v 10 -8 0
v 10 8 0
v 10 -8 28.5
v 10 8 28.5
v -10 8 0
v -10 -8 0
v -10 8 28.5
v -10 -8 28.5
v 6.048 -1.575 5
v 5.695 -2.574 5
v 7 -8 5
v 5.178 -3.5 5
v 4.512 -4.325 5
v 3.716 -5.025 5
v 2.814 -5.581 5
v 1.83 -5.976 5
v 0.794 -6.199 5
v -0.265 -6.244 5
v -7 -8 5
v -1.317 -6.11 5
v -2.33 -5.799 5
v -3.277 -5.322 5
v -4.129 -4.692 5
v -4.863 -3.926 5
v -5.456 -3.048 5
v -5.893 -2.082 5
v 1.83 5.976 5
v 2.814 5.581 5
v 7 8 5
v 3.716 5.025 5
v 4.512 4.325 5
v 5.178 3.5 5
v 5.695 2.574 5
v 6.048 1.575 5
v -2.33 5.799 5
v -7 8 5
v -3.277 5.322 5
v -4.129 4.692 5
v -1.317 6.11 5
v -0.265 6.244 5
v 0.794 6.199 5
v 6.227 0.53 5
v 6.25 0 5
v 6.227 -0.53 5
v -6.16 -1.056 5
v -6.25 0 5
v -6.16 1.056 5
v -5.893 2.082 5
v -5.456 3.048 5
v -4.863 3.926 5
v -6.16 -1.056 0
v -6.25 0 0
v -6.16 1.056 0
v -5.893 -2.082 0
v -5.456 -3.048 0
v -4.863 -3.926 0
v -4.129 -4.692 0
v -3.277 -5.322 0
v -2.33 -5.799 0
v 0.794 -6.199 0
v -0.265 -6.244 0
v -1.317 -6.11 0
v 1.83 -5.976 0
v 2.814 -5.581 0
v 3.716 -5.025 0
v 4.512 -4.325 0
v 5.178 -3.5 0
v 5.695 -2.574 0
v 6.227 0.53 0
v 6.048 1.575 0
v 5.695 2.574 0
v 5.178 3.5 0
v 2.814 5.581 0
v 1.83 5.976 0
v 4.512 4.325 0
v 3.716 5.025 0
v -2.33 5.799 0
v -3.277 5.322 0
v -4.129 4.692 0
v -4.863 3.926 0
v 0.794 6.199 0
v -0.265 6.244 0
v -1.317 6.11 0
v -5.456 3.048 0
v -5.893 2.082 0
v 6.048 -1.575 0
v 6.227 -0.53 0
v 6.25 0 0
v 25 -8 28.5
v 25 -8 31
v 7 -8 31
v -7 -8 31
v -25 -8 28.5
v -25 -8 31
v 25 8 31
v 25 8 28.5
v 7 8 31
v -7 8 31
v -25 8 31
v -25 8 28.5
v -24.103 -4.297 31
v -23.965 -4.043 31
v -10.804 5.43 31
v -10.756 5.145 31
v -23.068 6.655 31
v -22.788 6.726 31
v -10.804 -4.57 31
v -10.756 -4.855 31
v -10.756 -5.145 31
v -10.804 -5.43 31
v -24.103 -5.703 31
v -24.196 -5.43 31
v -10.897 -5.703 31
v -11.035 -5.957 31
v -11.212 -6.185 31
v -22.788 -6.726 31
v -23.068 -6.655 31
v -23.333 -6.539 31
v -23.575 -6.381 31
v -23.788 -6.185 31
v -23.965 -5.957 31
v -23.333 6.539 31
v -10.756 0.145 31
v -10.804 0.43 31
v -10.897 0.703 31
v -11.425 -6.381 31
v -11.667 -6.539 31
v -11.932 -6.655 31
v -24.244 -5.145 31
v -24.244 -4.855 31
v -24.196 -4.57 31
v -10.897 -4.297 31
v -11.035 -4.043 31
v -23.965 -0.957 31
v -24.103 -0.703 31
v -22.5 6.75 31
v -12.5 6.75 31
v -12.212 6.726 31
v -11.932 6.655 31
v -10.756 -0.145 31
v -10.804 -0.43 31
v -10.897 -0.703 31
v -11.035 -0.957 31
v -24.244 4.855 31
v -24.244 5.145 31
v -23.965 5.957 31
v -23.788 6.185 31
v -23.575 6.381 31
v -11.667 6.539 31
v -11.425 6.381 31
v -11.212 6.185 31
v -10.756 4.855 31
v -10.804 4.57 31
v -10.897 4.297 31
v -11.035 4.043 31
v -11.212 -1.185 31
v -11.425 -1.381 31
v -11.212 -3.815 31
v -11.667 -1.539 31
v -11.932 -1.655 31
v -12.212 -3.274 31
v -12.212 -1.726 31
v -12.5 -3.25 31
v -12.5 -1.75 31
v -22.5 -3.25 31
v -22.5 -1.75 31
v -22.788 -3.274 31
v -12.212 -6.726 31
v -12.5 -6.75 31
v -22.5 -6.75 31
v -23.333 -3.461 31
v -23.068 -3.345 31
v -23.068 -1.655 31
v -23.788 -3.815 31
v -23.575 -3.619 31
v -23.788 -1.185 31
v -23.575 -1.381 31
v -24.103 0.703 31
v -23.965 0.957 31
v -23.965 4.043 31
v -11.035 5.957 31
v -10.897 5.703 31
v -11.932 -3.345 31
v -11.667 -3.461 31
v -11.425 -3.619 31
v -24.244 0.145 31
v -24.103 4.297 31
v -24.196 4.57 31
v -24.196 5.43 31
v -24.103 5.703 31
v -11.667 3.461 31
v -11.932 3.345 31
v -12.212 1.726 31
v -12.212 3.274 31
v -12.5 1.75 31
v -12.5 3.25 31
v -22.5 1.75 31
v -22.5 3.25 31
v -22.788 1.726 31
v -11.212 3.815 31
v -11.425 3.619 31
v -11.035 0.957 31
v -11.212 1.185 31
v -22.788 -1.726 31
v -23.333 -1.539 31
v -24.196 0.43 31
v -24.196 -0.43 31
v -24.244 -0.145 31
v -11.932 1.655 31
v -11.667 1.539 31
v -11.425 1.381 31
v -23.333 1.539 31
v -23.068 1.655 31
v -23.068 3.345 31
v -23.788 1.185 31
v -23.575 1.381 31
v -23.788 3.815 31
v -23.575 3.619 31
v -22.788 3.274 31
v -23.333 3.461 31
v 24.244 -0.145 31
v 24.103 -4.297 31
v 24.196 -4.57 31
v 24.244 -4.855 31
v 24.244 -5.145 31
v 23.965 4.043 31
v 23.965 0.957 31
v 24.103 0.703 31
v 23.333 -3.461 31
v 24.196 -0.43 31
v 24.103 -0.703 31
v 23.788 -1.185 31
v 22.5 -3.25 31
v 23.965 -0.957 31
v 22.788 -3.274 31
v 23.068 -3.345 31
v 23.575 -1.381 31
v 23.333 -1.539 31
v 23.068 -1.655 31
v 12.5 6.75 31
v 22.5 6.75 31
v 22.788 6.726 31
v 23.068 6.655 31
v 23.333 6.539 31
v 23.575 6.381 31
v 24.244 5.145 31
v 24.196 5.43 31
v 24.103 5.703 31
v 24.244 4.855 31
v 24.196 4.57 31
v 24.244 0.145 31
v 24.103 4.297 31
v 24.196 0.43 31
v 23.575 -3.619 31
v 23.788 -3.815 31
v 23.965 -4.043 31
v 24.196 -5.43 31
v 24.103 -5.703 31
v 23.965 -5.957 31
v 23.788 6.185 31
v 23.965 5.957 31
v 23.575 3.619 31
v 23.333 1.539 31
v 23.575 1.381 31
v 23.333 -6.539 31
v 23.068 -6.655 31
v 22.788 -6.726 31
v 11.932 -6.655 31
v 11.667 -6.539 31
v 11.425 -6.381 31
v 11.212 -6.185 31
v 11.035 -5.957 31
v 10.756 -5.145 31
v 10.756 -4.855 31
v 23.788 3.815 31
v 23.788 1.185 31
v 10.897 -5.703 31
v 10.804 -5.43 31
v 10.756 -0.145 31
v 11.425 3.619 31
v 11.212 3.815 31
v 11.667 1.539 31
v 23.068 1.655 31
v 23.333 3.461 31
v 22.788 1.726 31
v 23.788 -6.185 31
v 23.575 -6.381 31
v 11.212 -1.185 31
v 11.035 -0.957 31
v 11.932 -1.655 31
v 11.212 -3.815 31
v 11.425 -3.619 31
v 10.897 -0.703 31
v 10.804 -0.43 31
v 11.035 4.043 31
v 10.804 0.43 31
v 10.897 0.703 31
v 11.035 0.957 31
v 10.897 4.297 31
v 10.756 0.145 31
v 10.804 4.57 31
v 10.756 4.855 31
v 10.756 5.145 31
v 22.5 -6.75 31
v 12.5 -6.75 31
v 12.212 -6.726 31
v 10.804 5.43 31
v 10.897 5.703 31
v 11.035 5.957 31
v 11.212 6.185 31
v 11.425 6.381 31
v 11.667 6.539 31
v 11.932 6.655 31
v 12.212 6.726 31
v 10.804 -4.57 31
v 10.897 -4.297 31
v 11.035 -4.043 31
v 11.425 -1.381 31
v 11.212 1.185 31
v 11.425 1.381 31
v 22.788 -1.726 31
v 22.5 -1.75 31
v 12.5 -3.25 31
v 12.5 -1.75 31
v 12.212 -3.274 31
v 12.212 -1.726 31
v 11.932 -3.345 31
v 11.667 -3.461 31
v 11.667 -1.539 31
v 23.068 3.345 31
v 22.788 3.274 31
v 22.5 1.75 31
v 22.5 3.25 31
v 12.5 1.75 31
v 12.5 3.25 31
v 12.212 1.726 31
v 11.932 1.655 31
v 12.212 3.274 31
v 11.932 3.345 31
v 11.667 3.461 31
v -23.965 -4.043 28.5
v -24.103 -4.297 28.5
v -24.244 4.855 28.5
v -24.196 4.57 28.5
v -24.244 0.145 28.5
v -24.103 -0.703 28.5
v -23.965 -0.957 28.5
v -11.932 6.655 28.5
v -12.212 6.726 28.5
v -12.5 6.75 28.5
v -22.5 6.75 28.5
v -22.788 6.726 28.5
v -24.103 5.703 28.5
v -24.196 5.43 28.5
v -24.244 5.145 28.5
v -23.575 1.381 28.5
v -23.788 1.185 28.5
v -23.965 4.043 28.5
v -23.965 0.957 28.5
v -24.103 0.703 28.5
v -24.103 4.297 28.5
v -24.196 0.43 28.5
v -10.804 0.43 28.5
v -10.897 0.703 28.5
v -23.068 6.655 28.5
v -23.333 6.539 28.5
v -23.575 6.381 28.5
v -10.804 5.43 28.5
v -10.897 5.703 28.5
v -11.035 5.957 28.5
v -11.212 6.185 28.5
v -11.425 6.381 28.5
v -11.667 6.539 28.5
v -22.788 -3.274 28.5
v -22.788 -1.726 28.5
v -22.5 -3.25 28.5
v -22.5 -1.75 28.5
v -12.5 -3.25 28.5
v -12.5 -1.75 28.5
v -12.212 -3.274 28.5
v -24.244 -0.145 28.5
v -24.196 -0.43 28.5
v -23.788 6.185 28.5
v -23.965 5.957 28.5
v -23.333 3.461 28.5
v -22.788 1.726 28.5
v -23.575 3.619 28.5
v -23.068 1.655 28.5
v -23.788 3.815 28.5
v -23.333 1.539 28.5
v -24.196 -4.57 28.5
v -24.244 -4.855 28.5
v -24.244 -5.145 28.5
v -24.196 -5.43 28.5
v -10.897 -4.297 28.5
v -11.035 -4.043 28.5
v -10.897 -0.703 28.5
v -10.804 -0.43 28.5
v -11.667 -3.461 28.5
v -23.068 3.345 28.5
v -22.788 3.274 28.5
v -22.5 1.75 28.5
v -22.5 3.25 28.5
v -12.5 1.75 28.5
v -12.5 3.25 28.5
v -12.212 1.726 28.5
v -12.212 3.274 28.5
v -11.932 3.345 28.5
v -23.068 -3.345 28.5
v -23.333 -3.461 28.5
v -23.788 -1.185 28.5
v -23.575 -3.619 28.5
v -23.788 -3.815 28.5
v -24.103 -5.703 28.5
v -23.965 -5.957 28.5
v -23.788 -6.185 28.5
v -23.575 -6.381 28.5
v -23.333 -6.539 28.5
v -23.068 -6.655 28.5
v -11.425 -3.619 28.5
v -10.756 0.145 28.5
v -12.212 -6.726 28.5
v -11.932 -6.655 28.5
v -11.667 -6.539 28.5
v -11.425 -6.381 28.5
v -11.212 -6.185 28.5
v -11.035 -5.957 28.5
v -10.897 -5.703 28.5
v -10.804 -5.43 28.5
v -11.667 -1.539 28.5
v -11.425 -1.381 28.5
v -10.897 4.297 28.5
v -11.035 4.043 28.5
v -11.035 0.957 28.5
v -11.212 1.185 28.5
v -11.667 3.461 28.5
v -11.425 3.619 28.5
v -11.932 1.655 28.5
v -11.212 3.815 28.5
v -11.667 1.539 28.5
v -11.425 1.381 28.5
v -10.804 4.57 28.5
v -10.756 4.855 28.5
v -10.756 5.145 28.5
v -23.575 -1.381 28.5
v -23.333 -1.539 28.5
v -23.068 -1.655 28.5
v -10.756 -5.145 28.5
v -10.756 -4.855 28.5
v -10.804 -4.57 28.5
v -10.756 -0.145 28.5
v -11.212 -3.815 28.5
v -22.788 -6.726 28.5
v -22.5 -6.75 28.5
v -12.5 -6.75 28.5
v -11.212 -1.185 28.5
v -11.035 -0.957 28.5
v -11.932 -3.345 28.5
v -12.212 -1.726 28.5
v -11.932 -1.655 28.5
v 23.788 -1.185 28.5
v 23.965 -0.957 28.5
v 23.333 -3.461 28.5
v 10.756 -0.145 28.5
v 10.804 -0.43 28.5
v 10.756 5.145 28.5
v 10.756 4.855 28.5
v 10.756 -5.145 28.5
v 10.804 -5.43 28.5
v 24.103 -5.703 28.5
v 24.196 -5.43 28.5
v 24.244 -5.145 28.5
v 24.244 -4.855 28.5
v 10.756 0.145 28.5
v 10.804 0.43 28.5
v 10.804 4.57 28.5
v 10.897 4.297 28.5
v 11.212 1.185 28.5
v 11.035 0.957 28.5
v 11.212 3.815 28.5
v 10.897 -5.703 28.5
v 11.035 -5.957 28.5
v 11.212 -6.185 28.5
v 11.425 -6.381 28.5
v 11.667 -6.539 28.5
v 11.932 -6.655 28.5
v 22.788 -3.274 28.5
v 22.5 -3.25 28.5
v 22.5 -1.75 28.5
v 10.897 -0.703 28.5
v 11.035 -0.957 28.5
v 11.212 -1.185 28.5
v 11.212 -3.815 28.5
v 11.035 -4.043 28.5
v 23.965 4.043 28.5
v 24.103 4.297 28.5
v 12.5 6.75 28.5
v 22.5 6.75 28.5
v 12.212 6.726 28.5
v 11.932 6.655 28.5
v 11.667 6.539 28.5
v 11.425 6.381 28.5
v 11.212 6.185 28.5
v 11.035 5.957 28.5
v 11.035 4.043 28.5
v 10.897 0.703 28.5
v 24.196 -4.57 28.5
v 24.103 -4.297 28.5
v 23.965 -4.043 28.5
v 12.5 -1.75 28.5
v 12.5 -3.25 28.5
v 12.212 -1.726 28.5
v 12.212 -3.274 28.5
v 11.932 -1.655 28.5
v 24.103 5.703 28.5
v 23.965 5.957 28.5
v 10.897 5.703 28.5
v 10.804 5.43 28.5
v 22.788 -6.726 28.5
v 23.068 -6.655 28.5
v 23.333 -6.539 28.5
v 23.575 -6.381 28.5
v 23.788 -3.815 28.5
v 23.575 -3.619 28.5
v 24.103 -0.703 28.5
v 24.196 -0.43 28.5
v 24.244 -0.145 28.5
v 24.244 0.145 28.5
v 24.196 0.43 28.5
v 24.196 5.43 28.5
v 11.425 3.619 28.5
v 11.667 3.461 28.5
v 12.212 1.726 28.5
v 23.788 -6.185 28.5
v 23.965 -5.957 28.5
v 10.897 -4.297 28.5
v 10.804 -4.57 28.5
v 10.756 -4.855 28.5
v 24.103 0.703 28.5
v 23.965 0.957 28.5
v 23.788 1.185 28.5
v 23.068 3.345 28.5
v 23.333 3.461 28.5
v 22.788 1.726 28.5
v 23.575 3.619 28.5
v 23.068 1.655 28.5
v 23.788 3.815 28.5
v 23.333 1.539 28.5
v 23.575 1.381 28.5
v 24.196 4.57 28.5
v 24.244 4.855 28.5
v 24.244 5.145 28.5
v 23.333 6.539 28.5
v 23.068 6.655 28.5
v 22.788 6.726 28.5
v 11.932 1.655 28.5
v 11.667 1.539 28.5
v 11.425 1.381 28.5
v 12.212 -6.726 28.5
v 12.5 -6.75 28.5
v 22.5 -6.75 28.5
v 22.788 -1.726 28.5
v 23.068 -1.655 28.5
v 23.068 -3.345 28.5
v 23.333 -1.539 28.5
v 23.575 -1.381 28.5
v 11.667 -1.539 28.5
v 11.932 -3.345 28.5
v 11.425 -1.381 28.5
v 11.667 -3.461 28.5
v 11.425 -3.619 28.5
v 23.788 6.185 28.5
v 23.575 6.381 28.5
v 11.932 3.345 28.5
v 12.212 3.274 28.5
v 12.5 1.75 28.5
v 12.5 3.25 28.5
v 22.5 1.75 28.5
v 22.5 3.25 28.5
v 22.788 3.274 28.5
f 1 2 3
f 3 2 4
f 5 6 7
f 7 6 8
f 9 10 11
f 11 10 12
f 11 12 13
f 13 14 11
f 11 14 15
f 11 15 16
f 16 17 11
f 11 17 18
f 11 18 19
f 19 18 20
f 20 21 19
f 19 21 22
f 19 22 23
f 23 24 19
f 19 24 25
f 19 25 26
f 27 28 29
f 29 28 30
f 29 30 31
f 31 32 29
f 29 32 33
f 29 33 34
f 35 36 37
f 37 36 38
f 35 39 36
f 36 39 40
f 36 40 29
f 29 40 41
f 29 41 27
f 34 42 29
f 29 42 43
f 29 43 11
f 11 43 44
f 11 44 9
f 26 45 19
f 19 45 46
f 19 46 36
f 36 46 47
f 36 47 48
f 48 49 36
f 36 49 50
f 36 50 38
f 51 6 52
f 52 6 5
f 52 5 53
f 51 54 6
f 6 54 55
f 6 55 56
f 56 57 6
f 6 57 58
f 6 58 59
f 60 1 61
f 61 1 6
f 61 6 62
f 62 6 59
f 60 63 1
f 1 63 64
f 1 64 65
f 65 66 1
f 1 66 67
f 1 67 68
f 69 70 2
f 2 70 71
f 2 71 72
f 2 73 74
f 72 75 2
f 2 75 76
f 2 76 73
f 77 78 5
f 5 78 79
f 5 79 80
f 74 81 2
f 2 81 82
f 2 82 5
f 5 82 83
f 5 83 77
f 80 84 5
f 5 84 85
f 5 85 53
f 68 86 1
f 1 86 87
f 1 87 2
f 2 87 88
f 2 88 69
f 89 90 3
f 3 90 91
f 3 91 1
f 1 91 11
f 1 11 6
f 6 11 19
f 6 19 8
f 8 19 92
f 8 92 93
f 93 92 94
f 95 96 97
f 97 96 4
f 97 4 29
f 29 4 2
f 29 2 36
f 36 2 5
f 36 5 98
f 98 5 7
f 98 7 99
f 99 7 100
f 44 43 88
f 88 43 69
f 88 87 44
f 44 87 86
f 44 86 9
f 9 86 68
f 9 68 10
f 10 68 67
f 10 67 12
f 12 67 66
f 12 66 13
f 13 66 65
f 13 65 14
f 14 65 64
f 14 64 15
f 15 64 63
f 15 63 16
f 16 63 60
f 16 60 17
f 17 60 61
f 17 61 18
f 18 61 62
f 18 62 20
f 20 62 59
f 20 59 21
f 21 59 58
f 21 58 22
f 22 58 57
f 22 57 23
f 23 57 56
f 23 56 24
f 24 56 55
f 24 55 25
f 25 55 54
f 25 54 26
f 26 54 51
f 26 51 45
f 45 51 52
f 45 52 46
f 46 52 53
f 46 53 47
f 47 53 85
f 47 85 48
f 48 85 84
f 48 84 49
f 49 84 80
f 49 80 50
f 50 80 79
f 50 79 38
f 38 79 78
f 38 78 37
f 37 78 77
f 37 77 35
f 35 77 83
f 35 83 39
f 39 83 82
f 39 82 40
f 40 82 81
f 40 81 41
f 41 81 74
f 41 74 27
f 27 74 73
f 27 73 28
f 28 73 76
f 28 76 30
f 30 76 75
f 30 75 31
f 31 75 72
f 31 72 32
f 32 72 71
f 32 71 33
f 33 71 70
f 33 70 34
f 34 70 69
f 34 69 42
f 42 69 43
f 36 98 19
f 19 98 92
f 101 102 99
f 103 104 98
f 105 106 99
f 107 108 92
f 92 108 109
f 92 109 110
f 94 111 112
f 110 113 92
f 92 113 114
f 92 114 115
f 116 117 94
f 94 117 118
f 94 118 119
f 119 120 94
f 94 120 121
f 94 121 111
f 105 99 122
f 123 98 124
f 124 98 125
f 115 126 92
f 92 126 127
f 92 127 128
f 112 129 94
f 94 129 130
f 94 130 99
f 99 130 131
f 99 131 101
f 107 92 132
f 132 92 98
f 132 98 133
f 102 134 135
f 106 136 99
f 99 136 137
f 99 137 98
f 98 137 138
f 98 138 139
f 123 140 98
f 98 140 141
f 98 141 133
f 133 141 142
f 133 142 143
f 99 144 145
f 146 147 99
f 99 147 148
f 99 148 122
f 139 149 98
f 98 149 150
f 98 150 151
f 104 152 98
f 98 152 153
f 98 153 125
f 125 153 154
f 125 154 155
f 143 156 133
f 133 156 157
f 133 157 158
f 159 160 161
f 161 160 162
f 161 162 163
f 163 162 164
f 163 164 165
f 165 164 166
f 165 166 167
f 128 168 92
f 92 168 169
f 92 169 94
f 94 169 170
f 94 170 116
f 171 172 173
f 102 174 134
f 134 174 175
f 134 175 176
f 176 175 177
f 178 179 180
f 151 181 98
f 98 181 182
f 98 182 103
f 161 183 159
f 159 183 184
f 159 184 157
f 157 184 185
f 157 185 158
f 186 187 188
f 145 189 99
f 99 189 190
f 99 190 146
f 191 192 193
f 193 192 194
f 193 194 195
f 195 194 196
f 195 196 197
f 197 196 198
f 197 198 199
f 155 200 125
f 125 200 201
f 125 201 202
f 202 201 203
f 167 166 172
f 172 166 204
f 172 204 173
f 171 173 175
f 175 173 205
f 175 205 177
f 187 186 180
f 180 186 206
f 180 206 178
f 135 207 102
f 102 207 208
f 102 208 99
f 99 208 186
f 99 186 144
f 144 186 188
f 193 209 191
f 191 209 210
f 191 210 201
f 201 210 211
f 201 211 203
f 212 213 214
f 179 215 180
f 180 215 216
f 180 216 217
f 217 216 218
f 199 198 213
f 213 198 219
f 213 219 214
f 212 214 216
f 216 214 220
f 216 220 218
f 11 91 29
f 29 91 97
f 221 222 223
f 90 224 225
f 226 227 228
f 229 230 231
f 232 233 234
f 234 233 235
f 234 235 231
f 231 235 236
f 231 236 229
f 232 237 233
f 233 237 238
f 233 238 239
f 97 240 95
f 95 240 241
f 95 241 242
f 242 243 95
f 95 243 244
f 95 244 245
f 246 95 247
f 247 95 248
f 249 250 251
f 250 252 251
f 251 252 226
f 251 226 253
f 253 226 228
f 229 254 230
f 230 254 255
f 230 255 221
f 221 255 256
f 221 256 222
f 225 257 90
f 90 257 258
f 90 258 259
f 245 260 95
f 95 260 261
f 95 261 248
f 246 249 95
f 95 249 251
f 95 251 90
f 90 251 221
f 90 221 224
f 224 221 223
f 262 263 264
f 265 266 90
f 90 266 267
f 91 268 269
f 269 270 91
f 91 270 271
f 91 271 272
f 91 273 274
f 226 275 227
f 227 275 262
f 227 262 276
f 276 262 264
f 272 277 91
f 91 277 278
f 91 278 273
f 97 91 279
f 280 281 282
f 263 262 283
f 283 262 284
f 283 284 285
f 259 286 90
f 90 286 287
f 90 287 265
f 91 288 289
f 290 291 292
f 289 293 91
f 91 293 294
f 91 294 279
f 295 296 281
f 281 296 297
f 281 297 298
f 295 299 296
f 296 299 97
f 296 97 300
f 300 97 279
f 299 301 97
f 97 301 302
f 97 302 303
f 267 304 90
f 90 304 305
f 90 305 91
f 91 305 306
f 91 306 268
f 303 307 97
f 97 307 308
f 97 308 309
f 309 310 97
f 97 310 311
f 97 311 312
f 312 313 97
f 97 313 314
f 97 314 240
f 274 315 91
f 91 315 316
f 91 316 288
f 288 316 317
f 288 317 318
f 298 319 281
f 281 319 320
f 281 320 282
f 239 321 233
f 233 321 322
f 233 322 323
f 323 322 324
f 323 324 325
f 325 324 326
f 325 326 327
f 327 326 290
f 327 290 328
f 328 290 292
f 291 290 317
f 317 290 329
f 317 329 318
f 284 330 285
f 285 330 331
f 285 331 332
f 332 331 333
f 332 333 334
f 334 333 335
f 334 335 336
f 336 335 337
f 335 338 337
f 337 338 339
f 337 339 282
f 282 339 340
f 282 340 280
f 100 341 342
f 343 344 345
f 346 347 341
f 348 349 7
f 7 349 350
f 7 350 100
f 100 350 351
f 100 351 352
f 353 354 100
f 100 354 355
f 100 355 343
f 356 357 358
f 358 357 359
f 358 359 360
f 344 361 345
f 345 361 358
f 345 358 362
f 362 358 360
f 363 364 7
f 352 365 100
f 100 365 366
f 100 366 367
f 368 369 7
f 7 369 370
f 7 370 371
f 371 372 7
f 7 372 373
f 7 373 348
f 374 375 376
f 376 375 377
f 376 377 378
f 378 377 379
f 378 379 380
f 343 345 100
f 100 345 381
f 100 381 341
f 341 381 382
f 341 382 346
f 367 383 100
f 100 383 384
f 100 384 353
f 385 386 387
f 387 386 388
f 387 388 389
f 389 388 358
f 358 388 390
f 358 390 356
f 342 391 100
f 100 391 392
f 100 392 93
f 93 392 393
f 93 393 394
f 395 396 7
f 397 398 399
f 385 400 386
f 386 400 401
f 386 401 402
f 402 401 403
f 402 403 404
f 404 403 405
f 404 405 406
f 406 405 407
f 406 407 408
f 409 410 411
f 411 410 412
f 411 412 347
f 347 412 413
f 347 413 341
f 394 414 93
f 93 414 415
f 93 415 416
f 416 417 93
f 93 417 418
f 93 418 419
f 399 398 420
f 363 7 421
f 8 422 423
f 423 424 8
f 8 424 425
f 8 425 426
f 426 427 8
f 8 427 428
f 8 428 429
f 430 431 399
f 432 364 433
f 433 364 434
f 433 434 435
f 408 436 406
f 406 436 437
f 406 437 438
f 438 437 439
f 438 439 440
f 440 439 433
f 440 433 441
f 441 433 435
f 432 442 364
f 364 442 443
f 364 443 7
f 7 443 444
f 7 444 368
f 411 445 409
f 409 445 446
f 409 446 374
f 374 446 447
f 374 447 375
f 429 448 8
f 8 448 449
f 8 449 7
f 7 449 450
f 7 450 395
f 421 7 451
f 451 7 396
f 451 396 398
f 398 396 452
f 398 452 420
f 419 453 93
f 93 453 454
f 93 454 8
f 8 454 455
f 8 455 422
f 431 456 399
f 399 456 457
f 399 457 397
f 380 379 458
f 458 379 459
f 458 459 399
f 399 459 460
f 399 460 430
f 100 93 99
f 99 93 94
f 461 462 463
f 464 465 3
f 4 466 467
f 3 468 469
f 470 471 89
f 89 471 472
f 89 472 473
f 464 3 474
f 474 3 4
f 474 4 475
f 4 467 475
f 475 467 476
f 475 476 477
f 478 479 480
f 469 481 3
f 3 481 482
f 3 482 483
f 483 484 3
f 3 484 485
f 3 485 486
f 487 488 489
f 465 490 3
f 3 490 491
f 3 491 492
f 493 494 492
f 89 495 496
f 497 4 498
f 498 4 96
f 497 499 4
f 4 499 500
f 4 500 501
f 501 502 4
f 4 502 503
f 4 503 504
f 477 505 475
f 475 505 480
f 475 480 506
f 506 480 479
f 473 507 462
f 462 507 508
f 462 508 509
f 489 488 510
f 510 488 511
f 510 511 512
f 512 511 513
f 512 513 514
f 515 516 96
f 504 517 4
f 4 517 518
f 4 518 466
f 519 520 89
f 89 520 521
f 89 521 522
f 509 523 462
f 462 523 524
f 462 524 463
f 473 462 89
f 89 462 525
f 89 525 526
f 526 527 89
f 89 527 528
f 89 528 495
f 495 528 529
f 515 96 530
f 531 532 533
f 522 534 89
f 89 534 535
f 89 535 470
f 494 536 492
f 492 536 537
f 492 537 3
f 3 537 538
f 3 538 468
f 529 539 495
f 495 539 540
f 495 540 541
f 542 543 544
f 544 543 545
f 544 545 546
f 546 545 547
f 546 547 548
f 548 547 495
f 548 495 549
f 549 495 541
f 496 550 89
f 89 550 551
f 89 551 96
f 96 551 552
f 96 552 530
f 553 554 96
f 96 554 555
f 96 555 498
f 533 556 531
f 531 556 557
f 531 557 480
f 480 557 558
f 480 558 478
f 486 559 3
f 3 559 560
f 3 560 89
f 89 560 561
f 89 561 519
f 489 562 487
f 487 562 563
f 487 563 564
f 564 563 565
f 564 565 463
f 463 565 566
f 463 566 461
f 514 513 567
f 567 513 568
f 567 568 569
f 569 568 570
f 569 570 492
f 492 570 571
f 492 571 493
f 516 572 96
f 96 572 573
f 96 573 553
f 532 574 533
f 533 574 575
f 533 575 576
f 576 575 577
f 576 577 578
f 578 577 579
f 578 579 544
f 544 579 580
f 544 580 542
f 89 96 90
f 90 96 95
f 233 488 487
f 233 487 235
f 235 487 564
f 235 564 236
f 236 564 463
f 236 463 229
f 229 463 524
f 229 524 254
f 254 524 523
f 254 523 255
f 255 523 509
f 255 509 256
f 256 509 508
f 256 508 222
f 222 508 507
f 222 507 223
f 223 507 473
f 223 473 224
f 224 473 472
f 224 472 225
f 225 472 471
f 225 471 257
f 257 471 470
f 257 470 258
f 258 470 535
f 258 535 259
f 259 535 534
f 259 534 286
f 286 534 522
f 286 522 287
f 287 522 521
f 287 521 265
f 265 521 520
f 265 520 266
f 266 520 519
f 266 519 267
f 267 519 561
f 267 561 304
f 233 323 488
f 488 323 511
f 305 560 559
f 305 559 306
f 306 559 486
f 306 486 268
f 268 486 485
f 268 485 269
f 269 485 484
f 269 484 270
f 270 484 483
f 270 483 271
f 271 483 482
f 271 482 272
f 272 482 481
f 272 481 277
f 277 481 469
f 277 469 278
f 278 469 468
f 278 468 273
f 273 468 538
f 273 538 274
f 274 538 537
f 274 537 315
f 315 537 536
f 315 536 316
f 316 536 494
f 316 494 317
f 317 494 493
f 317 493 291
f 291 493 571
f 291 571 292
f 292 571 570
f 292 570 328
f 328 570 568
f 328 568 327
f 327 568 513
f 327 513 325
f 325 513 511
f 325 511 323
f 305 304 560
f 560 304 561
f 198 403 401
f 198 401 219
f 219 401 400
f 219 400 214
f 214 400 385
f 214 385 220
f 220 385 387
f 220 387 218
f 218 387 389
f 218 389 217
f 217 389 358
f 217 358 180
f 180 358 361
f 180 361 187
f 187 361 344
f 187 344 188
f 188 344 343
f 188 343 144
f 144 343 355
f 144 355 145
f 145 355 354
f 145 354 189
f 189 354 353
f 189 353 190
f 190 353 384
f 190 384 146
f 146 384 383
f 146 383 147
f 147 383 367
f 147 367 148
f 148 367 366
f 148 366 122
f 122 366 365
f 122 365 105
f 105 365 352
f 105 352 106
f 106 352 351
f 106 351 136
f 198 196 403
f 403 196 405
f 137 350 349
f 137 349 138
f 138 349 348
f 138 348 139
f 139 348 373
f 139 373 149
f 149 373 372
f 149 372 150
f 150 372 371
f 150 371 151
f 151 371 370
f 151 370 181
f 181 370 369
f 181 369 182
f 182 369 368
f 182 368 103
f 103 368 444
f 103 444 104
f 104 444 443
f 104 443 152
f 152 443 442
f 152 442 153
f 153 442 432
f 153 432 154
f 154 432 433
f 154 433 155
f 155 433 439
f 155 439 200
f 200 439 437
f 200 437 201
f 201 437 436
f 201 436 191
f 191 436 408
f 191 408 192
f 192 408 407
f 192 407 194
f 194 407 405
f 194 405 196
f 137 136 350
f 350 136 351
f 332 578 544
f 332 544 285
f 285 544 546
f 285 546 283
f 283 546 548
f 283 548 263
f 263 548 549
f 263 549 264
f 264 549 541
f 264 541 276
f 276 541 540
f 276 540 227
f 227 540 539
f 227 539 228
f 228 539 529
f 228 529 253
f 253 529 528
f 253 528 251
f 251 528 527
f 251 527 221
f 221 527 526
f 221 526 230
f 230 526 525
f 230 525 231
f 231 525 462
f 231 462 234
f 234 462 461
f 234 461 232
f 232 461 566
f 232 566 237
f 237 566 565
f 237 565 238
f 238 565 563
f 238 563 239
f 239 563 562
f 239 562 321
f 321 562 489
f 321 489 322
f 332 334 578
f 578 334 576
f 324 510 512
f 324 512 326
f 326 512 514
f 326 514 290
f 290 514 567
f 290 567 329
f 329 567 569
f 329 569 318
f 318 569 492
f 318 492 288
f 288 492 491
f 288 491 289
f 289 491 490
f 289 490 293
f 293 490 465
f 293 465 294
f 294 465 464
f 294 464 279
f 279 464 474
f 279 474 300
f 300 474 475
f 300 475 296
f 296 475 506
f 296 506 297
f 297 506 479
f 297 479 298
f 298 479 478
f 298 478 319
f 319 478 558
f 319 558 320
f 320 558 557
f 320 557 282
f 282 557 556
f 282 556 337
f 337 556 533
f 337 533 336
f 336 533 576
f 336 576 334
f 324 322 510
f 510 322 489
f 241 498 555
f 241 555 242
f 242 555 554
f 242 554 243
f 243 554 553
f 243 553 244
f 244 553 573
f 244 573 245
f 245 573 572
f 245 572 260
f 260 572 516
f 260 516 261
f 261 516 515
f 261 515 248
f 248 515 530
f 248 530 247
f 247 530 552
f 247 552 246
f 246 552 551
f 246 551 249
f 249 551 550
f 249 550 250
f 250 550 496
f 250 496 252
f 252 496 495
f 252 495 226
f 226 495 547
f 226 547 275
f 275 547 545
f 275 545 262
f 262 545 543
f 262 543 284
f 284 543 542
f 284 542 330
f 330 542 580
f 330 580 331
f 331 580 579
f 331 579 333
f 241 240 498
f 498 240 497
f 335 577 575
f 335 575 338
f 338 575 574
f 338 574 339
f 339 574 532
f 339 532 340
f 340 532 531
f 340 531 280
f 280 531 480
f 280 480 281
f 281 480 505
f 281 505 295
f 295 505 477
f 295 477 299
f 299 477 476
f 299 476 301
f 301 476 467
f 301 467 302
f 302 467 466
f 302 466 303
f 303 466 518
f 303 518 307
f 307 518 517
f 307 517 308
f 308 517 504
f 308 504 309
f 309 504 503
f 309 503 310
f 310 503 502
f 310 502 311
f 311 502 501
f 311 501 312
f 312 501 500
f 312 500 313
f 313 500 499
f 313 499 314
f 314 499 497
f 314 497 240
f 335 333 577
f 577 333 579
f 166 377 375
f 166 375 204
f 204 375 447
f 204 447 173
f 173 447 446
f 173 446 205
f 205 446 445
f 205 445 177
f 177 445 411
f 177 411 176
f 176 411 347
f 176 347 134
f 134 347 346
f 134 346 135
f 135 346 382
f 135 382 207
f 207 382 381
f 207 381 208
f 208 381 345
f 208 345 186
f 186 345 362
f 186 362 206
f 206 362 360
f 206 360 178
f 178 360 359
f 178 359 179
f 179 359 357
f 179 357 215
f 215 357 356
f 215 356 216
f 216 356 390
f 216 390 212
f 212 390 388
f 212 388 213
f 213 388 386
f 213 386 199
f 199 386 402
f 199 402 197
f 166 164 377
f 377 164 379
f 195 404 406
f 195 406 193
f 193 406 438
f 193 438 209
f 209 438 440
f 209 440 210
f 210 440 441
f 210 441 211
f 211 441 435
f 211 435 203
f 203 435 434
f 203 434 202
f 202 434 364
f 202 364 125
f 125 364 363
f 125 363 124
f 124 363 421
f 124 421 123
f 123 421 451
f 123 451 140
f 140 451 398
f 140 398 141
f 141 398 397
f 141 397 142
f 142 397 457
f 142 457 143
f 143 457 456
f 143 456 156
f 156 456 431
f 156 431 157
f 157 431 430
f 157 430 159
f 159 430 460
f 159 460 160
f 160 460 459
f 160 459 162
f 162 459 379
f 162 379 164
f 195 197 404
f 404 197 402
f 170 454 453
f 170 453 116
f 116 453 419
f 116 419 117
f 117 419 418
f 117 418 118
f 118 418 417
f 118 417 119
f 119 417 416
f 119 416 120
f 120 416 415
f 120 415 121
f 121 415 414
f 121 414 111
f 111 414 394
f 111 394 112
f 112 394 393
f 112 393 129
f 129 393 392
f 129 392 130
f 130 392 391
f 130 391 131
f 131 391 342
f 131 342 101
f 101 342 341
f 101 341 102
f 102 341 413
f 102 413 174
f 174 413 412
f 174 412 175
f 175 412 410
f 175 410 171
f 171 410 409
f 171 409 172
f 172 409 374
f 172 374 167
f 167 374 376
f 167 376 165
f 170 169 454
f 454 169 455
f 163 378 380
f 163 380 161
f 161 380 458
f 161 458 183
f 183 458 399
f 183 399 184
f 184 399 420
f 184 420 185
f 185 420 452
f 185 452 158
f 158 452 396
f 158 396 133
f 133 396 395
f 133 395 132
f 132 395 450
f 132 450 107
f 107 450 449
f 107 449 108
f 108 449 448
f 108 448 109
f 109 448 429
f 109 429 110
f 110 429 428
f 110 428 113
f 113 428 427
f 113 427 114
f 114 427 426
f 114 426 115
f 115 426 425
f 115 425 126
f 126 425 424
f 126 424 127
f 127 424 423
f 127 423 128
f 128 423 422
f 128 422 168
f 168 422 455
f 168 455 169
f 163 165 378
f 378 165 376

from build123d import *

# Parameters (mm, degrees)
SKETCH1_W           = 20
SKETCH1_H           = 16
SKETCH1_R           = 6.25
BOSS_EXTRUDE1_DEPTH = 5
SKETCH2_W           = 3
SKETCH2_H           = 16
BOSS_EXTRUDE2_DEPTH = 26
SKETCH3_W           = 18
SKETCH3_H           = 16
BOSS_EXTRUDE3_DEPTH = 2.5
CUT_EXTRUDE1_DEPTH  = 39.745967532


with BuildPart() as part:
    # Sketch1 → Boss-Extrude1 (new body)
    with BuildSketch(Plane.XY):
        Rectangle(SKETCH1_W, SKETCH1_H)
        Circle(SKETCH1_R, mode=Mode.SUBTRACT)
    extrude(amount=BOSS_EXTRUDE1_DEPTH)

    # Sketch2 → Boss-Extrude2 (add)
    with BuildSketch(Plane.XY.offset(5)):
        with Locations((-8.5, 0)):
            Rectangle(SKETCH2_W, SKETCH2_H)
        with Locations((8.5, 0)):
            Rectangle(SKETCH2_W, SKETCH2_H)
    extrude(amount=BOSS_EXTRUDE2_DEPTH)

    # Sketch3 → Boss-Extrude3 (add)
    with BuildSketch(Plane.XY.offset(31)):
        with Locations((-16, 0)):
            Rectangle(SKETCH3_W, SKETCH3_H)
        with Locations((16, 0)):
            Rectangle(SKETCH3_W, SKETCH3_H)
    extrude(amount=-BOSS_EXTRUDE3_DEPTH)

    # Sketch4 → Cut-Extrude1 (cut, through all)
    with BuildSketch(Plane(origin=(0, 0, 28.5), x_dir=(-1, 0, 0), z_dir=(0, 0, -1))):
        with BuildLine():
            Line((-22.5, -3.25), (-12.5, -3.25))
            ThreePointArc((-12.5, -3.25), (-10.75, -5), (-12.5, -6.75))
            Line((-12.5, -6.75), (-22.5, -6.75))
            ThreePointArc((-22.5, -6.75), (-24.25, -5), (-22.5, -3.25))
        make_face()
        with BuildLine():
            Line((22.5, 6.75), (12.5, 6.75))
            ThreePointArc((12.5, 6.75), (10.75, 5), (12.5, 3.25))
            Line((12.5, 3.25), (22.5, 3.25))
            ThreePointArc((22.5, 3.25), (24.25, 5), (22.5, 6.75))
        make_face()
        with BuildLine():
            Line((-22.5, 1.75), (-12.5, 1.75))
            ThreePointArc((-12.5, 1.75), (-10.75, 0), (-12.5, -1.75))
            Line((-12.5, -1.75), (-22.5, -1.75))
            ThreePointArc((-22.5, -1.75), (-24.25, 0), (-22.5, 1.75))
        make_face()
        with BuildLine():
            Line((-22.5, 6.75), (-12.5, 6.75))
            ThreePointArc((-12.5, 6.75), (-10.75, 5), (-12.5, 3.25))
            Line((-12.5, 3.25), (-22.5, 3.25))
            ThreePointArc((-22.5, 3.25), (-24.25, 5), (-22.5, 6.75))
        make_face()
        with BuildLine():
            Line((22.5, 1.75), (12.5, 1.75))
            ThreePointArc((12.5, 1.75), (10.75, 0), (12.5, -1.75))
            Line((12.5, -1.75), (22.5, -1.75))
            ThreePointArc((22.5, -1.75), (24.25, 0), (22.5, 1.75))
        make_face()
        with BuildLine():
            Line((22.5, -3.25), (12.5, -3.25))
            ThreePointArc((12.5, -3.25), (10.75, -5), (12.5, -6.75))
            Line((12.5, -6.75), (22.5, -6.75))
            ThreePointArc((22.5, -6.75), (24.25, -5), (22.5, -3.25))
        make_face()
    extrude(amount=-CUT_EXTRUDE1_DEPTH, mode=Mode.SUBTRACT)


solid = part.part
